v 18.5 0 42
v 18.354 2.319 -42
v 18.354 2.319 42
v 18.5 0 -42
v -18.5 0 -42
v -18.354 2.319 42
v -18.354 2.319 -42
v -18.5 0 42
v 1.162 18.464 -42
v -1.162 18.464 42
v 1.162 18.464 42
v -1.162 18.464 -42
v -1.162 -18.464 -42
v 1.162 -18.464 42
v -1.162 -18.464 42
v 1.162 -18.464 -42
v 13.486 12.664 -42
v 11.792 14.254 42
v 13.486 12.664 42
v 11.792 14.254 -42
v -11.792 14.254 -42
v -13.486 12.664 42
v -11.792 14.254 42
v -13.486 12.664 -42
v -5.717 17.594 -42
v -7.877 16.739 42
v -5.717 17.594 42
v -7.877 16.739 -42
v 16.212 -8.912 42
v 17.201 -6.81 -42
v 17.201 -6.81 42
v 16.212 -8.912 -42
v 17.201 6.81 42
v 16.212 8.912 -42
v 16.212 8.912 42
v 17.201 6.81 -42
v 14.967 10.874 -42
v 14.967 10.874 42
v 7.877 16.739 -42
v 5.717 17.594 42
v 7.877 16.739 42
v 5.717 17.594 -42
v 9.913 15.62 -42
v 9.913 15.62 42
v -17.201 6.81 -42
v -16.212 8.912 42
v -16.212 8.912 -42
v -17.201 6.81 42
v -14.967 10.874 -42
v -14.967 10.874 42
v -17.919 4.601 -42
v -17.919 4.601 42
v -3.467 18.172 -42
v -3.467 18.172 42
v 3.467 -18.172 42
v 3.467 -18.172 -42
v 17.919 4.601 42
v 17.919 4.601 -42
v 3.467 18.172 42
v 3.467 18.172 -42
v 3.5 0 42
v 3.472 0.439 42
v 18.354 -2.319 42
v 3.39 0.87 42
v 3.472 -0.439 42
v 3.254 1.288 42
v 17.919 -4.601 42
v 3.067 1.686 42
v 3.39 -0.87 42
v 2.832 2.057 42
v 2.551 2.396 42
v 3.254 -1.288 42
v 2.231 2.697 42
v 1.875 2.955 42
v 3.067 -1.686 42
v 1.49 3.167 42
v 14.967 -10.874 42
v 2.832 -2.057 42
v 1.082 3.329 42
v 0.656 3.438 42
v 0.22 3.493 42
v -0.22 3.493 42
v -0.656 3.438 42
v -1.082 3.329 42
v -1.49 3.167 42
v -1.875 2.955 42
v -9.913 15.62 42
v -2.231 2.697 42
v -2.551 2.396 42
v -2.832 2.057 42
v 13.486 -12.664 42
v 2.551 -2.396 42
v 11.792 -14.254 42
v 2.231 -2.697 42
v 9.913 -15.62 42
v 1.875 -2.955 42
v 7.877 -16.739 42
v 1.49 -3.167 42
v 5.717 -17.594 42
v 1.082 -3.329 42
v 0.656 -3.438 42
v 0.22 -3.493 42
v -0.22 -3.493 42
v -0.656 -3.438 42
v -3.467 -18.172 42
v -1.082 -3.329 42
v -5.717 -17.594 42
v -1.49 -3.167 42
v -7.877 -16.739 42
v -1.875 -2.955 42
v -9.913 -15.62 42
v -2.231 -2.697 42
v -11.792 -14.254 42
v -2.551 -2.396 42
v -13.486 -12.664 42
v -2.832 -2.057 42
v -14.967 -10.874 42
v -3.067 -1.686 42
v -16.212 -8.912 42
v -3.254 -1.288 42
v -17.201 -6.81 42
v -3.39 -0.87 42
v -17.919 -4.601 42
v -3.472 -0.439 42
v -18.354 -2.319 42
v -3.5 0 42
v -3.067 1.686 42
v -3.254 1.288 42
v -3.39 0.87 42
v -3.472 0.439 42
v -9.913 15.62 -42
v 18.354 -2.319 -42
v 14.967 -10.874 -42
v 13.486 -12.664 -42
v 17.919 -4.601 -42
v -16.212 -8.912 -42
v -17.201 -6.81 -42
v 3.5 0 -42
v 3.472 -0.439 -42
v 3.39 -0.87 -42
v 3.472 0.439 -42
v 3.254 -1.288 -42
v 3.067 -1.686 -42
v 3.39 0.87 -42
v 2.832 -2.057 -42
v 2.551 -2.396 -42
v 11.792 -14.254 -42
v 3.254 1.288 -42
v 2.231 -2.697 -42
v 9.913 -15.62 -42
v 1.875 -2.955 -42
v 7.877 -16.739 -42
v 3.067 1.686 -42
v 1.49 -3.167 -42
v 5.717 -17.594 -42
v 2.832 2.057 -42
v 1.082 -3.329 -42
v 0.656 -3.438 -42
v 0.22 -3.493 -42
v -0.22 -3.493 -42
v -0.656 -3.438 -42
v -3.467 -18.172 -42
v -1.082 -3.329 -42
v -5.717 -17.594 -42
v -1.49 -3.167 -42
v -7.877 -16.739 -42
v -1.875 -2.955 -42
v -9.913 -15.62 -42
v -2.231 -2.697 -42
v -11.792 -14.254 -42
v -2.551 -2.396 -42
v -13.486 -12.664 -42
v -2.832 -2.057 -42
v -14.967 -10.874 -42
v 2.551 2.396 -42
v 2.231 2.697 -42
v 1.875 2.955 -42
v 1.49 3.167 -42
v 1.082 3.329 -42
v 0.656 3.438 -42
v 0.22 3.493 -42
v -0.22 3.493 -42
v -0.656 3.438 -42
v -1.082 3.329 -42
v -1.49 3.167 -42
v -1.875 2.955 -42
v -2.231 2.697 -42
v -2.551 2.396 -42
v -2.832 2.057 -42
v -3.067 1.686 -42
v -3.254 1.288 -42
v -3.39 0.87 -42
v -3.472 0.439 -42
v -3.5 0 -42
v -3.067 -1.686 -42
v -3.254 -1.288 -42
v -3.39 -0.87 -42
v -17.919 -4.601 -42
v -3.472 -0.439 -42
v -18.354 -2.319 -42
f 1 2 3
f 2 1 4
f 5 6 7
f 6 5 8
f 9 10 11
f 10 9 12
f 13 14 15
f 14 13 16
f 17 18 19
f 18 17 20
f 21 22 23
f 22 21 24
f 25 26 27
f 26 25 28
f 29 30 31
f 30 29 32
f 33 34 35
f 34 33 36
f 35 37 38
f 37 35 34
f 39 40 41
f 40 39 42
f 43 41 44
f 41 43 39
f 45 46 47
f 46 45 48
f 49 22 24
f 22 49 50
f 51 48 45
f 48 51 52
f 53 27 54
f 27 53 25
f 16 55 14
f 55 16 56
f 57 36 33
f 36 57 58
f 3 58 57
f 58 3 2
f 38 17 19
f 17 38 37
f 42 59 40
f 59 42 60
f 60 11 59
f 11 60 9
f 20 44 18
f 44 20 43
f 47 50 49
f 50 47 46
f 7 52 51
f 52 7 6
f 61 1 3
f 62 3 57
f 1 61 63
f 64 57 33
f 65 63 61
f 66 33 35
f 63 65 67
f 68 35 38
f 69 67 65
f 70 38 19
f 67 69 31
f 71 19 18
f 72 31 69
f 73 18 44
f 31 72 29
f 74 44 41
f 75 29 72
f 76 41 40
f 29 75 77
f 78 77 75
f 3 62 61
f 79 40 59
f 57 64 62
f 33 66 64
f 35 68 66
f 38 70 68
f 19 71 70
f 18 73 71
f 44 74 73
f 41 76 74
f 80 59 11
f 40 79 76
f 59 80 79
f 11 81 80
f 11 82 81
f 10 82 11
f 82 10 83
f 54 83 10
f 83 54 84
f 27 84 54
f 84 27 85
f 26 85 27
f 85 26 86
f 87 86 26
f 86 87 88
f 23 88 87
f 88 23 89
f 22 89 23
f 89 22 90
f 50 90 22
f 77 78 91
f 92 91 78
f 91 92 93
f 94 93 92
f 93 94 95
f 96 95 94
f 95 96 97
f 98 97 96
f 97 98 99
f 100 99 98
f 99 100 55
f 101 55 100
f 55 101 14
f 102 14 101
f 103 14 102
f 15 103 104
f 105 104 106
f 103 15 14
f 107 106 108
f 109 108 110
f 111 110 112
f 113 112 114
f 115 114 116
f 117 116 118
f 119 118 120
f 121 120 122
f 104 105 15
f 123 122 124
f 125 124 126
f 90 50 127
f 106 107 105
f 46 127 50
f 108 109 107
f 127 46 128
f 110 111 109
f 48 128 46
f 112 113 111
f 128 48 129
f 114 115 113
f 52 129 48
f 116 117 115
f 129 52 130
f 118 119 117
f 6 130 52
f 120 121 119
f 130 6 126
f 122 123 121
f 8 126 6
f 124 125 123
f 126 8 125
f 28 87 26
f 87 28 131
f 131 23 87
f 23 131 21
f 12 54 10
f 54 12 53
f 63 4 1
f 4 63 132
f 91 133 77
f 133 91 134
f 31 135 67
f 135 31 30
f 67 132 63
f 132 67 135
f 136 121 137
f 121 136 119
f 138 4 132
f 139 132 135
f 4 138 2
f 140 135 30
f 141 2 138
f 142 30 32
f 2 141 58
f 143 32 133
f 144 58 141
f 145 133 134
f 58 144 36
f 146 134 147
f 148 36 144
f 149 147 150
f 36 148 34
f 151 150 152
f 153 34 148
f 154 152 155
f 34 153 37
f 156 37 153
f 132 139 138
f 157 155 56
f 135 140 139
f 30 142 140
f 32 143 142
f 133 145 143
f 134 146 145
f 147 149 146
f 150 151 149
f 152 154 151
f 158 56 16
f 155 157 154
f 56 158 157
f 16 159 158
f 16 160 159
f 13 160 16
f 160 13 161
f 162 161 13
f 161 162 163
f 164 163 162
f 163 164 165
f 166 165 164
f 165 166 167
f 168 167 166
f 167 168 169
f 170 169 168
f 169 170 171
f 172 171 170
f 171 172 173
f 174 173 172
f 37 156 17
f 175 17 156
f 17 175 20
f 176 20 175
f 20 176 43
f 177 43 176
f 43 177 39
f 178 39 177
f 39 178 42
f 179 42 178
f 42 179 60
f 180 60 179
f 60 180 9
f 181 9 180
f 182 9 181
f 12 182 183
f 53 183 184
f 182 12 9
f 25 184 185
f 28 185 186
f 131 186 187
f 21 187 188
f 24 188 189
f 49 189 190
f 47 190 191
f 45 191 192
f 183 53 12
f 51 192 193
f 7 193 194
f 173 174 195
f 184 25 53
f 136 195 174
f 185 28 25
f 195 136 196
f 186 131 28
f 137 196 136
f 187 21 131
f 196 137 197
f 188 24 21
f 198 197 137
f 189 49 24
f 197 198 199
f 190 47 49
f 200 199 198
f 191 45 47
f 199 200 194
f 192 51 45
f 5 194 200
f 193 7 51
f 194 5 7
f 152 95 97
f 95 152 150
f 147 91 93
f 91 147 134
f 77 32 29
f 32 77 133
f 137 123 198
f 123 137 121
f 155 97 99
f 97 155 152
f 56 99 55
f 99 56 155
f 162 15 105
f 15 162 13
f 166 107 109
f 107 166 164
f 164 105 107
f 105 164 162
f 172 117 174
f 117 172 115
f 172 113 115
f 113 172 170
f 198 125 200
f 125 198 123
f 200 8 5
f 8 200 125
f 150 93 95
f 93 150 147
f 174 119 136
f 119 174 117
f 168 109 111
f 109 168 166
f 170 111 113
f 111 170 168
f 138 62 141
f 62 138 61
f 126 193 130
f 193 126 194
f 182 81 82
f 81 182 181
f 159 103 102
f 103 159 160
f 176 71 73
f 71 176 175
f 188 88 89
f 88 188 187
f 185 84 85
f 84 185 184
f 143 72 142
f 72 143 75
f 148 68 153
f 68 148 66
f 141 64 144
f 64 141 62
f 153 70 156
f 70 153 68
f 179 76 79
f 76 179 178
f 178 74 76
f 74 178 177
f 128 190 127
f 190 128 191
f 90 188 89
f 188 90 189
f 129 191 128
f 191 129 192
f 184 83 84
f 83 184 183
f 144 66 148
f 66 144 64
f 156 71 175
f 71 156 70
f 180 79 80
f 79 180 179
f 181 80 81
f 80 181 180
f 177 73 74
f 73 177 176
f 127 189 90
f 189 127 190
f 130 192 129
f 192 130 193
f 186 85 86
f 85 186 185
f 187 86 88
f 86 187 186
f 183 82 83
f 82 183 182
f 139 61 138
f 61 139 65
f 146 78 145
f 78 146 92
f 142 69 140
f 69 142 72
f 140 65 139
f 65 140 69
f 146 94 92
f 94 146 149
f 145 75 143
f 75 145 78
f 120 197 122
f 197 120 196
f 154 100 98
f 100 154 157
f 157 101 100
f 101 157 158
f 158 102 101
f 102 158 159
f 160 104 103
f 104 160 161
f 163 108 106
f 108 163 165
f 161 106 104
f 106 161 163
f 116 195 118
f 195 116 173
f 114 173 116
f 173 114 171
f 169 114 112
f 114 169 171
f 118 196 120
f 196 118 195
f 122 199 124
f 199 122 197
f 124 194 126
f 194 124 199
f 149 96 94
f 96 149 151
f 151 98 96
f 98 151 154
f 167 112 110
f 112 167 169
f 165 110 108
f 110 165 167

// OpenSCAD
$fn = 50;


difference() {
	union() {
		translate(v = [0, 0, -42.0000000000]) {
			cylinder(h = 84, r = 18.5000000000);
		}
	}
	union() {
		translate(v = [0, 0, -100.0000000000]) {
			cylinder(h = 200, r = 3.5000000000);
		}
	}
}
